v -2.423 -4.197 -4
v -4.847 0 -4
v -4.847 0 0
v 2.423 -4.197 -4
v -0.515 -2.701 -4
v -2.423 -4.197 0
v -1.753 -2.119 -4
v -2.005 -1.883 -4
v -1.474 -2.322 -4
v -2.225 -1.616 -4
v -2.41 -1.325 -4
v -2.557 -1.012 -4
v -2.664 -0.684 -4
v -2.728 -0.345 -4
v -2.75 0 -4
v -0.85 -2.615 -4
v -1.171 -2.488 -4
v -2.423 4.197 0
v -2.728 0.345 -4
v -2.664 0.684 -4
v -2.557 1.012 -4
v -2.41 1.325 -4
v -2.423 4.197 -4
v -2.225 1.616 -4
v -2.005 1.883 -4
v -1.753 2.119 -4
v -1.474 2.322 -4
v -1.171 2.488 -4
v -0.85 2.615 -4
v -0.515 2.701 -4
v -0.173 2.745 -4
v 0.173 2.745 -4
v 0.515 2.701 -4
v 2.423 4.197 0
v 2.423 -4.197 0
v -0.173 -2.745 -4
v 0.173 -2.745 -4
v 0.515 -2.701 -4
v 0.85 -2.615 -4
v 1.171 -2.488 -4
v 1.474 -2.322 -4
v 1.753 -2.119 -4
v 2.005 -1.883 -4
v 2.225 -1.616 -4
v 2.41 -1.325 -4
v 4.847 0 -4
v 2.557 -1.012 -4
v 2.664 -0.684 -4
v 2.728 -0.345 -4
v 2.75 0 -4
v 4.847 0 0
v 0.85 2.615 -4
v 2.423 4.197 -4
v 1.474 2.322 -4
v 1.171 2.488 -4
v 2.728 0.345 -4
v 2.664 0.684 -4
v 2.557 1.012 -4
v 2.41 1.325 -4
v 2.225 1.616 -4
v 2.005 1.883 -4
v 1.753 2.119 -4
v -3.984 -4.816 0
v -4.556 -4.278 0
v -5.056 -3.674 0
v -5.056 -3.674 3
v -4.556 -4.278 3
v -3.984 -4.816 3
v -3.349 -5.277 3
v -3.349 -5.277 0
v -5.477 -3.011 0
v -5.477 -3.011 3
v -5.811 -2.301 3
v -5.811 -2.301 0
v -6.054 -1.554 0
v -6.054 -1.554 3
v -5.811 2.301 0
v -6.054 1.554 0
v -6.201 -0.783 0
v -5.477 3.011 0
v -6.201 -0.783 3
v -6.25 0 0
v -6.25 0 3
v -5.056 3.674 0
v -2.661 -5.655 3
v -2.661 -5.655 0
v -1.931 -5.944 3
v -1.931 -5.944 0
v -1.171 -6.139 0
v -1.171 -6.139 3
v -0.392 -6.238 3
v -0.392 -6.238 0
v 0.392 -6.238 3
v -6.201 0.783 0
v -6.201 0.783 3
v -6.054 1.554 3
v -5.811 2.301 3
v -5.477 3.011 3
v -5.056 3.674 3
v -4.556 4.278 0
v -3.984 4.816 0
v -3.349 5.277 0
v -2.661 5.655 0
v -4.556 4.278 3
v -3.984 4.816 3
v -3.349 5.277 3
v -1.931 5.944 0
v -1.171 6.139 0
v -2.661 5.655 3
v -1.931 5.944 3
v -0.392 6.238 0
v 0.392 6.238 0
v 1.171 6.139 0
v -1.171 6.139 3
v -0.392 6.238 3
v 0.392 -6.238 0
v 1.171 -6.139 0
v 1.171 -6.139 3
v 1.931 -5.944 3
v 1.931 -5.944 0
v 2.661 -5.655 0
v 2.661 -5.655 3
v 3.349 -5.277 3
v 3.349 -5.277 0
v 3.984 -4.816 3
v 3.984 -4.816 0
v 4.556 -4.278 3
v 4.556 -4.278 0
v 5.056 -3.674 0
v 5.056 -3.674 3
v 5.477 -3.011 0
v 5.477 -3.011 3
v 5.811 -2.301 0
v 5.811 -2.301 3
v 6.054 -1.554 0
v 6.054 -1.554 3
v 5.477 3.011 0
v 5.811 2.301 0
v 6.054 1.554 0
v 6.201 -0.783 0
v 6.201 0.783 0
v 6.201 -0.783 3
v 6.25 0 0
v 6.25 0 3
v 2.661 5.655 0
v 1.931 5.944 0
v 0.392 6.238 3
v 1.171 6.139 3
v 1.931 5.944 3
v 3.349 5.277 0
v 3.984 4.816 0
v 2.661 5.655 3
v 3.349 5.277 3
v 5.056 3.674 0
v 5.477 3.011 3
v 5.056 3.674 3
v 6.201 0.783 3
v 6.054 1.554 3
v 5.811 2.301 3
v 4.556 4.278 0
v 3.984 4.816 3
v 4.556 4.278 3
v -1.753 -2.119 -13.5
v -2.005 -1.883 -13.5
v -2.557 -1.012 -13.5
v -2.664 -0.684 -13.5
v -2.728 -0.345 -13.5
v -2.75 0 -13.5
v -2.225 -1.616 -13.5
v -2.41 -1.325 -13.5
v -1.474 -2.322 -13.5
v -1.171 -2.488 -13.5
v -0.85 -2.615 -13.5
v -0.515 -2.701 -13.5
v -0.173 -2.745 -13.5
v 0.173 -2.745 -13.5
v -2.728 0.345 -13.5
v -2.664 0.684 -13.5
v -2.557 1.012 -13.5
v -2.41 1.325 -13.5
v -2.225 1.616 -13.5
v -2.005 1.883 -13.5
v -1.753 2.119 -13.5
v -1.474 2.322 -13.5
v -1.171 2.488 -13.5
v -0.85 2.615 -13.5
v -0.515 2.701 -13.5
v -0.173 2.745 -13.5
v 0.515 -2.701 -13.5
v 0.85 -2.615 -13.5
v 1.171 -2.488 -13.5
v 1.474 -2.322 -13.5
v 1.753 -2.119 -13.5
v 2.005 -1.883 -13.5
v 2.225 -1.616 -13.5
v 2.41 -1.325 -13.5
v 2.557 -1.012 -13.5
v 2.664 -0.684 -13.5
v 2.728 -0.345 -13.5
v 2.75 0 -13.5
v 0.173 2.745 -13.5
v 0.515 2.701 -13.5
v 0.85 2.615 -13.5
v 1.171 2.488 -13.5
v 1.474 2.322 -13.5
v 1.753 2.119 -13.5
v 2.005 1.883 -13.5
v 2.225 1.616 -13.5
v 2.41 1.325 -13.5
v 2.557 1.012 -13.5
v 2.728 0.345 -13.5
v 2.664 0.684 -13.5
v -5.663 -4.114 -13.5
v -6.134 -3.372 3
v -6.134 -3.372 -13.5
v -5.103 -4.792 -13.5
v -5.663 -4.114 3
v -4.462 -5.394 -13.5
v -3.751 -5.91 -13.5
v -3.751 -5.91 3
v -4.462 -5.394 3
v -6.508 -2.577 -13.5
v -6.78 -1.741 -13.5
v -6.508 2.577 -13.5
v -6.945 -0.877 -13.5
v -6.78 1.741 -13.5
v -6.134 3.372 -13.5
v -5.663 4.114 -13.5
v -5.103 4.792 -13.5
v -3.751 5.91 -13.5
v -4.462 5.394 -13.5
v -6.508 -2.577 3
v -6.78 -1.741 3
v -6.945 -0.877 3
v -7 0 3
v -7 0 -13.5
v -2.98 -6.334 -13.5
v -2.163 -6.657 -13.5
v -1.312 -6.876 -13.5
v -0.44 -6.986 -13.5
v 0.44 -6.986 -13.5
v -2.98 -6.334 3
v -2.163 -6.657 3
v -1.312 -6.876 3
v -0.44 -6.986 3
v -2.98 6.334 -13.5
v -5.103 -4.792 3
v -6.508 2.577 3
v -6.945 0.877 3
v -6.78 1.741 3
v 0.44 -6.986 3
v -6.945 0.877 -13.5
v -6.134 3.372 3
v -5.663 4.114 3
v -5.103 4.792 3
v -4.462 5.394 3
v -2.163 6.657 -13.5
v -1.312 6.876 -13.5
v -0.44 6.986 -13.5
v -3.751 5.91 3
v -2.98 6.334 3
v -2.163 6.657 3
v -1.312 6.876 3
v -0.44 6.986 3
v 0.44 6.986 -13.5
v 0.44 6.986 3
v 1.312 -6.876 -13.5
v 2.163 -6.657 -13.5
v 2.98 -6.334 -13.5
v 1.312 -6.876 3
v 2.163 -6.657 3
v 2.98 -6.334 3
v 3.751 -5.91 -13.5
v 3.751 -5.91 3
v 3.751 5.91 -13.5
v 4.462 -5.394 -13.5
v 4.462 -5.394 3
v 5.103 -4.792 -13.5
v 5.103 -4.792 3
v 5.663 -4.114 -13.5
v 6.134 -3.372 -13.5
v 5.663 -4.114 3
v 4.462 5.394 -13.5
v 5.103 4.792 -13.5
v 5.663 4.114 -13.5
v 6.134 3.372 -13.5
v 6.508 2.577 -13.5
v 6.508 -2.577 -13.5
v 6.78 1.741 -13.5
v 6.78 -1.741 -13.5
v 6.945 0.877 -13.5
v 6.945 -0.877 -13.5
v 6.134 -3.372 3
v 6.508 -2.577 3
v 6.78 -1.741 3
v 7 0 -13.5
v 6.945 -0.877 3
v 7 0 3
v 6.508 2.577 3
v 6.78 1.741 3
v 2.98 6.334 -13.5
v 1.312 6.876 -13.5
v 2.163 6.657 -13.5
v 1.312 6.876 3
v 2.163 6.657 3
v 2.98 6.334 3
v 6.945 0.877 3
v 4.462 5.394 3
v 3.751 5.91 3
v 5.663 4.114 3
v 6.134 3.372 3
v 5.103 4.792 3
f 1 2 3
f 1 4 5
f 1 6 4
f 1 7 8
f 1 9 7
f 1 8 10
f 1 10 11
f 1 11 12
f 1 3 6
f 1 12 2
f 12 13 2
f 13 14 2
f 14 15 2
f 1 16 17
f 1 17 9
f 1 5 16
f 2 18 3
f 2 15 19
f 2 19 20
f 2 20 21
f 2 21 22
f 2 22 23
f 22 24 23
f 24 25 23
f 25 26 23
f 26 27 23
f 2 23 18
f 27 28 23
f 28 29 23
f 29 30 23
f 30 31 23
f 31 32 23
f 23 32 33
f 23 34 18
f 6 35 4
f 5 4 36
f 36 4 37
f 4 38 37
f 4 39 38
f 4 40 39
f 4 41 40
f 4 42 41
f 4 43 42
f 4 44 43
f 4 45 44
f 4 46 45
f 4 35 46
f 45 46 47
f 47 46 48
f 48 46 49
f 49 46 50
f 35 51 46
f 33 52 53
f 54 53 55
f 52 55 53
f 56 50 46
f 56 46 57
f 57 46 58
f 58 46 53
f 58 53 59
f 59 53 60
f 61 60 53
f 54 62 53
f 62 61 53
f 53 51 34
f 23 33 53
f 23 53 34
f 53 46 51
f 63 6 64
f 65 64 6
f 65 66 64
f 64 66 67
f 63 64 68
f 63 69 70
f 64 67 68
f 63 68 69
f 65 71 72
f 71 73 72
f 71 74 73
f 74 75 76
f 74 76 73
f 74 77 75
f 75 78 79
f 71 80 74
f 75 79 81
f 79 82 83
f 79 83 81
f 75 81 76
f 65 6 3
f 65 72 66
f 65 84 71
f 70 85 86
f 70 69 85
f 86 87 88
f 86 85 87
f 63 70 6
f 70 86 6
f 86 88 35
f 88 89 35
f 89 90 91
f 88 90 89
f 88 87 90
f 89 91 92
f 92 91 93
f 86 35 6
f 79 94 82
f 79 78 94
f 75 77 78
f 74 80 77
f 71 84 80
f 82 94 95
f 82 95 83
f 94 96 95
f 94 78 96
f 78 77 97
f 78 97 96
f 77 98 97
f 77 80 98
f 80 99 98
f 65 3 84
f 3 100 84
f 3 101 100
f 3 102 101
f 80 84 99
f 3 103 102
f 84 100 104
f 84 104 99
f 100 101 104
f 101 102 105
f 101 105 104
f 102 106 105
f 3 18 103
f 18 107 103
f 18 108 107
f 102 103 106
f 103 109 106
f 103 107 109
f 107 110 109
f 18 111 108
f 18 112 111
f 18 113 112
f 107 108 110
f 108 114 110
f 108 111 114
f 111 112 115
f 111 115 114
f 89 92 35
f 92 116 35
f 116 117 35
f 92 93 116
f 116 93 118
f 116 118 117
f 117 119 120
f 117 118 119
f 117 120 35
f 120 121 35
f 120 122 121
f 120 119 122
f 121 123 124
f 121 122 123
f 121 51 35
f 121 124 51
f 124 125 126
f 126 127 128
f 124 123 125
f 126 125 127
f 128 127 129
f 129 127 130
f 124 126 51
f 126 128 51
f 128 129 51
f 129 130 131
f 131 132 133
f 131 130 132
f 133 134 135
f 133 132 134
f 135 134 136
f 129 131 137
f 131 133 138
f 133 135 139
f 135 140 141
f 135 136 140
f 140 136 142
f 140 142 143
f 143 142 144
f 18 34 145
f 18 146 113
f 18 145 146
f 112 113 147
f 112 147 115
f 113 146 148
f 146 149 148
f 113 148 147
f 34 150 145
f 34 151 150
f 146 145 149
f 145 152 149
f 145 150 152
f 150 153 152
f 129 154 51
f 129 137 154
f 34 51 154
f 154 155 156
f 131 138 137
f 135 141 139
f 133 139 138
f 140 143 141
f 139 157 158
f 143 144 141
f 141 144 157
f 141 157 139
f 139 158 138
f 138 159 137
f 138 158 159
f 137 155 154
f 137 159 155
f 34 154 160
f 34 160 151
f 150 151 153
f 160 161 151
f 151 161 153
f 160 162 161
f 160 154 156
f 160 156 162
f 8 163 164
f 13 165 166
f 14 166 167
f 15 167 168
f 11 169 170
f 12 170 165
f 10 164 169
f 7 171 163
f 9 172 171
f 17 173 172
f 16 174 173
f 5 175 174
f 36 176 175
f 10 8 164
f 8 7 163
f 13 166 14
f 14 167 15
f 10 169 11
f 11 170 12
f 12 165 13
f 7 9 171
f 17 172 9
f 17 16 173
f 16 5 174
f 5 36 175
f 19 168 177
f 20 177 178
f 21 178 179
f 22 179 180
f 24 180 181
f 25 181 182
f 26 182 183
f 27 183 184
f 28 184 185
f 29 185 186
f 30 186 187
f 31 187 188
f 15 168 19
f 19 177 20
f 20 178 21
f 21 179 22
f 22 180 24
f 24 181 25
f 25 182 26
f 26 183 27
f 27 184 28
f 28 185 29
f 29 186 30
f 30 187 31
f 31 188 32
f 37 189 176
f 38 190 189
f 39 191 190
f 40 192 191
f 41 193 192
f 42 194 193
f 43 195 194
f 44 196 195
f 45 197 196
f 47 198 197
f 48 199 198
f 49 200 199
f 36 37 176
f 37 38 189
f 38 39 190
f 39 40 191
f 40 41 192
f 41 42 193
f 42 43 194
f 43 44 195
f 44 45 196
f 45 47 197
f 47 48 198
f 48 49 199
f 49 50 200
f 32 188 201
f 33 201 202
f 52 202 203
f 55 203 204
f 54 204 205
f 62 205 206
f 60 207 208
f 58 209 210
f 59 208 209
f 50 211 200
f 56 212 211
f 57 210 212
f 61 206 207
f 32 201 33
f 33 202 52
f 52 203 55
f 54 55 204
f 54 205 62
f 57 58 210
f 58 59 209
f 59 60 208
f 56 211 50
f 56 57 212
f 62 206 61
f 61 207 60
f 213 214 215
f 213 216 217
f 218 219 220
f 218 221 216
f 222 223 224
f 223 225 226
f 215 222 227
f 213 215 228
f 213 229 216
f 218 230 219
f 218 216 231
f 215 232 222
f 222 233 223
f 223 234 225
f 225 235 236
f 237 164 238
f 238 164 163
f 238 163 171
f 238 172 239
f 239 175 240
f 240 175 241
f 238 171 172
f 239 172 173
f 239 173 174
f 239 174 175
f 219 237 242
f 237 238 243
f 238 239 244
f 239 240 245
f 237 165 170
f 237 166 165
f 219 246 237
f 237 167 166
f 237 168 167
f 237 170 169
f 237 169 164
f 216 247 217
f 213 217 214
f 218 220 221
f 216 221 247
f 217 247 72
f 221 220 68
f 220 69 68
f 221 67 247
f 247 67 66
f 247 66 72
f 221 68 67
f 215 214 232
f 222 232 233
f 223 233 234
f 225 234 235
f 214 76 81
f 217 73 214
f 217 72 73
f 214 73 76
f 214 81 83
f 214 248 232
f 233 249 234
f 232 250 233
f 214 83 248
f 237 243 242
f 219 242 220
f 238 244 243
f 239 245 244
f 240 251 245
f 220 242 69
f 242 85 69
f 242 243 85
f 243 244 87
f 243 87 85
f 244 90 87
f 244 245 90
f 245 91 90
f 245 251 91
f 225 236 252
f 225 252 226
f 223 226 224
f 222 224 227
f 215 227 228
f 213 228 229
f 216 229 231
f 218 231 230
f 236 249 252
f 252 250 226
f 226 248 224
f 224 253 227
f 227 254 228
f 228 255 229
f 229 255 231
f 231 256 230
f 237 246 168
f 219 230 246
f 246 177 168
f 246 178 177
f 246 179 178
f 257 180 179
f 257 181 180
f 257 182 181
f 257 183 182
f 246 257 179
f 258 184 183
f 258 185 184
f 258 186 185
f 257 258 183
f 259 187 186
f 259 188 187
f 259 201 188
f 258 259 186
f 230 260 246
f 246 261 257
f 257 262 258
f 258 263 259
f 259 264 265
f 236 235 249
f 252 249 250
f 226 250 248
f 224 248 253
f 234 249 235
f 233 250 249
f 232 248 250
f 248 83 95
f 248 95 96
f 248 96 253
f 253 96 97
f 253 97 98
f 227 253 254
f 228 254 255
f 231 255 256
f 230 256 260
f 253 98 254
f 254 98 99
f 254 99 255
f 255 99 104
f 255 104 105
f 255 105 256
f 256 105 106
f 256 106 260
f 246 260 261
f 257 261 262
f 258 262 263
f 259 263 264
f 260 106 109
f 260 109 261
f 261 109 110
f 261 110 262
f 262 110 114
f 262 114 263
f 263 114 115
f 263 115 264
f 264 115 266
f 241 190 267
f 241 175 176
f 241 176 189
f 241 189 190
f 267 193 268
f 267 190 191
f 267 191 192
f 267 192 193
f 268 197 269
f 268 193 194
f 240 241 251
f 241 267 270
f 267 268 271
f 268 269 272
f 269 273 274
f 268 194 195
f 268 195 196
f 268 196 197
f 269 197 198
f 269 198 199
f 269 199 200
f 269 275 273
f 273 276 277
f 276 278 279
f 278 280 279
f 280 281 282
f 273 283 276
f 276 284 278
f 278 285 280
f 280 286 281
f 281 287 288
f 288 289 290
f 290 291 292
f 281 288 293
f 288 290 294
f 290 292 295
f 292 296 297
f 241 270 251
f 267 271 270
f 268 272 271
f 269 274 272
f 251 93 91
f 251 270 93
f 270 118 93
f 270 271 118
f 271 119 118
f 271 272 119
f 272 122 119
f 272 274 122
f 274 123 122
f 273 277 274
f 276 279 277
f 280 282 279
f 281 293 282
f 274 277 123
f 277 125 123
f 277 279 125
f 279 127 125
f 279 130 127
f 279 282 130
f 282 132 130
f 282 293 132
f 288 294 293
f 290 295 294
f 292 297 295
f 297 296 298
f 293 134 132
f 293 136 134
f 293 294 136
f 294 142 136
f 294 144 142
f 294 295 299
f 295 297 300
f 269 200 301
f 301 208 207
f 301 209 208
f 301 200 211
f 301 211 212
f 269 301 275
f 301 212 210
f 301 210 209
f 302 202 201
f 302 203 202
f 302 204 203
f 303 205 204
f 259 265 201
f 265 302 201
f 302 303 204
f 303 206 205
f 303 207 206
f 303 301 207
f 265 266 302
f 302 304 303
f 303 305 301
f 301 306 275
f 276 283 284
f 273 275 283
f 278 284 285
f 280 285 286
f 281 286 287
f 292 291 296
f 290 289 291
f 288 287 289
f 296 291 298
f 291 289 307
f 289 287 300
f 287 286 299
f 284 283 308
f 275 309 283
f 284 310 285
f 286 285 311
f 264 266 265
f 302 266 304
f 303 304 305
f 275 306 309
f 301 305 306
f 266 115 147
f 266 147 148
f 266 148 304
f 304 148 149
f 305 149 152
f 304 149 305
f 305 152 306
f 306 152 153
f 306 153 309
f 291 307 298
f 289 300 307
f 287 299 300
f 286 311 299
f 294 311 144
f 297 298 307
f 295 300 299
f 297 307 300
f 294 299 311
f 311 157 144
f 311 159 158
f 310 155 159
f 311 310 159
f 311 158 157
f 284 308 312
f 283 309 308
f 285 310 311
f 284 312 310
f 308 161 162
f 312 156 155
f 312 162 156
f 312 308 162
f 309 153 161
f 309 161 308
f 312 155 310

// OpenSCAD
$fn = 50;


difference() {
	union() {
		translate(v = [0, 0, -13.5000000000]) {
			cylinder(h = 16.5000000000, r = 7.0000000000);
		}
	}
	union() {
		translate(v = [0, 0, 0]) {
			rotate(a = [0, 0, 0]) {
				difference() {
					union() {
						translate(v = [0, 0, -4]) {
							linear_extrude(height = 4) {
								polygon(points = [[4.8468000000, 0.0000000000], [2.4234000000, 4.1974519271], [-2.4234000000, 4.1974519271], [-4.8468000000, 0.0000000000], [-2.4234000000, -4.1974519271], [2.4234000000, -4.1974519271]]);
							}
						}
					}
					union();
				}
			}
		}
		#cylinder(h = 3, r = 6.2500000000);
		#translate(v = [0, 0, -100.0000000000]) {
			cylinder(h = 200, r = 2.7500000000);
		}
	}
}
